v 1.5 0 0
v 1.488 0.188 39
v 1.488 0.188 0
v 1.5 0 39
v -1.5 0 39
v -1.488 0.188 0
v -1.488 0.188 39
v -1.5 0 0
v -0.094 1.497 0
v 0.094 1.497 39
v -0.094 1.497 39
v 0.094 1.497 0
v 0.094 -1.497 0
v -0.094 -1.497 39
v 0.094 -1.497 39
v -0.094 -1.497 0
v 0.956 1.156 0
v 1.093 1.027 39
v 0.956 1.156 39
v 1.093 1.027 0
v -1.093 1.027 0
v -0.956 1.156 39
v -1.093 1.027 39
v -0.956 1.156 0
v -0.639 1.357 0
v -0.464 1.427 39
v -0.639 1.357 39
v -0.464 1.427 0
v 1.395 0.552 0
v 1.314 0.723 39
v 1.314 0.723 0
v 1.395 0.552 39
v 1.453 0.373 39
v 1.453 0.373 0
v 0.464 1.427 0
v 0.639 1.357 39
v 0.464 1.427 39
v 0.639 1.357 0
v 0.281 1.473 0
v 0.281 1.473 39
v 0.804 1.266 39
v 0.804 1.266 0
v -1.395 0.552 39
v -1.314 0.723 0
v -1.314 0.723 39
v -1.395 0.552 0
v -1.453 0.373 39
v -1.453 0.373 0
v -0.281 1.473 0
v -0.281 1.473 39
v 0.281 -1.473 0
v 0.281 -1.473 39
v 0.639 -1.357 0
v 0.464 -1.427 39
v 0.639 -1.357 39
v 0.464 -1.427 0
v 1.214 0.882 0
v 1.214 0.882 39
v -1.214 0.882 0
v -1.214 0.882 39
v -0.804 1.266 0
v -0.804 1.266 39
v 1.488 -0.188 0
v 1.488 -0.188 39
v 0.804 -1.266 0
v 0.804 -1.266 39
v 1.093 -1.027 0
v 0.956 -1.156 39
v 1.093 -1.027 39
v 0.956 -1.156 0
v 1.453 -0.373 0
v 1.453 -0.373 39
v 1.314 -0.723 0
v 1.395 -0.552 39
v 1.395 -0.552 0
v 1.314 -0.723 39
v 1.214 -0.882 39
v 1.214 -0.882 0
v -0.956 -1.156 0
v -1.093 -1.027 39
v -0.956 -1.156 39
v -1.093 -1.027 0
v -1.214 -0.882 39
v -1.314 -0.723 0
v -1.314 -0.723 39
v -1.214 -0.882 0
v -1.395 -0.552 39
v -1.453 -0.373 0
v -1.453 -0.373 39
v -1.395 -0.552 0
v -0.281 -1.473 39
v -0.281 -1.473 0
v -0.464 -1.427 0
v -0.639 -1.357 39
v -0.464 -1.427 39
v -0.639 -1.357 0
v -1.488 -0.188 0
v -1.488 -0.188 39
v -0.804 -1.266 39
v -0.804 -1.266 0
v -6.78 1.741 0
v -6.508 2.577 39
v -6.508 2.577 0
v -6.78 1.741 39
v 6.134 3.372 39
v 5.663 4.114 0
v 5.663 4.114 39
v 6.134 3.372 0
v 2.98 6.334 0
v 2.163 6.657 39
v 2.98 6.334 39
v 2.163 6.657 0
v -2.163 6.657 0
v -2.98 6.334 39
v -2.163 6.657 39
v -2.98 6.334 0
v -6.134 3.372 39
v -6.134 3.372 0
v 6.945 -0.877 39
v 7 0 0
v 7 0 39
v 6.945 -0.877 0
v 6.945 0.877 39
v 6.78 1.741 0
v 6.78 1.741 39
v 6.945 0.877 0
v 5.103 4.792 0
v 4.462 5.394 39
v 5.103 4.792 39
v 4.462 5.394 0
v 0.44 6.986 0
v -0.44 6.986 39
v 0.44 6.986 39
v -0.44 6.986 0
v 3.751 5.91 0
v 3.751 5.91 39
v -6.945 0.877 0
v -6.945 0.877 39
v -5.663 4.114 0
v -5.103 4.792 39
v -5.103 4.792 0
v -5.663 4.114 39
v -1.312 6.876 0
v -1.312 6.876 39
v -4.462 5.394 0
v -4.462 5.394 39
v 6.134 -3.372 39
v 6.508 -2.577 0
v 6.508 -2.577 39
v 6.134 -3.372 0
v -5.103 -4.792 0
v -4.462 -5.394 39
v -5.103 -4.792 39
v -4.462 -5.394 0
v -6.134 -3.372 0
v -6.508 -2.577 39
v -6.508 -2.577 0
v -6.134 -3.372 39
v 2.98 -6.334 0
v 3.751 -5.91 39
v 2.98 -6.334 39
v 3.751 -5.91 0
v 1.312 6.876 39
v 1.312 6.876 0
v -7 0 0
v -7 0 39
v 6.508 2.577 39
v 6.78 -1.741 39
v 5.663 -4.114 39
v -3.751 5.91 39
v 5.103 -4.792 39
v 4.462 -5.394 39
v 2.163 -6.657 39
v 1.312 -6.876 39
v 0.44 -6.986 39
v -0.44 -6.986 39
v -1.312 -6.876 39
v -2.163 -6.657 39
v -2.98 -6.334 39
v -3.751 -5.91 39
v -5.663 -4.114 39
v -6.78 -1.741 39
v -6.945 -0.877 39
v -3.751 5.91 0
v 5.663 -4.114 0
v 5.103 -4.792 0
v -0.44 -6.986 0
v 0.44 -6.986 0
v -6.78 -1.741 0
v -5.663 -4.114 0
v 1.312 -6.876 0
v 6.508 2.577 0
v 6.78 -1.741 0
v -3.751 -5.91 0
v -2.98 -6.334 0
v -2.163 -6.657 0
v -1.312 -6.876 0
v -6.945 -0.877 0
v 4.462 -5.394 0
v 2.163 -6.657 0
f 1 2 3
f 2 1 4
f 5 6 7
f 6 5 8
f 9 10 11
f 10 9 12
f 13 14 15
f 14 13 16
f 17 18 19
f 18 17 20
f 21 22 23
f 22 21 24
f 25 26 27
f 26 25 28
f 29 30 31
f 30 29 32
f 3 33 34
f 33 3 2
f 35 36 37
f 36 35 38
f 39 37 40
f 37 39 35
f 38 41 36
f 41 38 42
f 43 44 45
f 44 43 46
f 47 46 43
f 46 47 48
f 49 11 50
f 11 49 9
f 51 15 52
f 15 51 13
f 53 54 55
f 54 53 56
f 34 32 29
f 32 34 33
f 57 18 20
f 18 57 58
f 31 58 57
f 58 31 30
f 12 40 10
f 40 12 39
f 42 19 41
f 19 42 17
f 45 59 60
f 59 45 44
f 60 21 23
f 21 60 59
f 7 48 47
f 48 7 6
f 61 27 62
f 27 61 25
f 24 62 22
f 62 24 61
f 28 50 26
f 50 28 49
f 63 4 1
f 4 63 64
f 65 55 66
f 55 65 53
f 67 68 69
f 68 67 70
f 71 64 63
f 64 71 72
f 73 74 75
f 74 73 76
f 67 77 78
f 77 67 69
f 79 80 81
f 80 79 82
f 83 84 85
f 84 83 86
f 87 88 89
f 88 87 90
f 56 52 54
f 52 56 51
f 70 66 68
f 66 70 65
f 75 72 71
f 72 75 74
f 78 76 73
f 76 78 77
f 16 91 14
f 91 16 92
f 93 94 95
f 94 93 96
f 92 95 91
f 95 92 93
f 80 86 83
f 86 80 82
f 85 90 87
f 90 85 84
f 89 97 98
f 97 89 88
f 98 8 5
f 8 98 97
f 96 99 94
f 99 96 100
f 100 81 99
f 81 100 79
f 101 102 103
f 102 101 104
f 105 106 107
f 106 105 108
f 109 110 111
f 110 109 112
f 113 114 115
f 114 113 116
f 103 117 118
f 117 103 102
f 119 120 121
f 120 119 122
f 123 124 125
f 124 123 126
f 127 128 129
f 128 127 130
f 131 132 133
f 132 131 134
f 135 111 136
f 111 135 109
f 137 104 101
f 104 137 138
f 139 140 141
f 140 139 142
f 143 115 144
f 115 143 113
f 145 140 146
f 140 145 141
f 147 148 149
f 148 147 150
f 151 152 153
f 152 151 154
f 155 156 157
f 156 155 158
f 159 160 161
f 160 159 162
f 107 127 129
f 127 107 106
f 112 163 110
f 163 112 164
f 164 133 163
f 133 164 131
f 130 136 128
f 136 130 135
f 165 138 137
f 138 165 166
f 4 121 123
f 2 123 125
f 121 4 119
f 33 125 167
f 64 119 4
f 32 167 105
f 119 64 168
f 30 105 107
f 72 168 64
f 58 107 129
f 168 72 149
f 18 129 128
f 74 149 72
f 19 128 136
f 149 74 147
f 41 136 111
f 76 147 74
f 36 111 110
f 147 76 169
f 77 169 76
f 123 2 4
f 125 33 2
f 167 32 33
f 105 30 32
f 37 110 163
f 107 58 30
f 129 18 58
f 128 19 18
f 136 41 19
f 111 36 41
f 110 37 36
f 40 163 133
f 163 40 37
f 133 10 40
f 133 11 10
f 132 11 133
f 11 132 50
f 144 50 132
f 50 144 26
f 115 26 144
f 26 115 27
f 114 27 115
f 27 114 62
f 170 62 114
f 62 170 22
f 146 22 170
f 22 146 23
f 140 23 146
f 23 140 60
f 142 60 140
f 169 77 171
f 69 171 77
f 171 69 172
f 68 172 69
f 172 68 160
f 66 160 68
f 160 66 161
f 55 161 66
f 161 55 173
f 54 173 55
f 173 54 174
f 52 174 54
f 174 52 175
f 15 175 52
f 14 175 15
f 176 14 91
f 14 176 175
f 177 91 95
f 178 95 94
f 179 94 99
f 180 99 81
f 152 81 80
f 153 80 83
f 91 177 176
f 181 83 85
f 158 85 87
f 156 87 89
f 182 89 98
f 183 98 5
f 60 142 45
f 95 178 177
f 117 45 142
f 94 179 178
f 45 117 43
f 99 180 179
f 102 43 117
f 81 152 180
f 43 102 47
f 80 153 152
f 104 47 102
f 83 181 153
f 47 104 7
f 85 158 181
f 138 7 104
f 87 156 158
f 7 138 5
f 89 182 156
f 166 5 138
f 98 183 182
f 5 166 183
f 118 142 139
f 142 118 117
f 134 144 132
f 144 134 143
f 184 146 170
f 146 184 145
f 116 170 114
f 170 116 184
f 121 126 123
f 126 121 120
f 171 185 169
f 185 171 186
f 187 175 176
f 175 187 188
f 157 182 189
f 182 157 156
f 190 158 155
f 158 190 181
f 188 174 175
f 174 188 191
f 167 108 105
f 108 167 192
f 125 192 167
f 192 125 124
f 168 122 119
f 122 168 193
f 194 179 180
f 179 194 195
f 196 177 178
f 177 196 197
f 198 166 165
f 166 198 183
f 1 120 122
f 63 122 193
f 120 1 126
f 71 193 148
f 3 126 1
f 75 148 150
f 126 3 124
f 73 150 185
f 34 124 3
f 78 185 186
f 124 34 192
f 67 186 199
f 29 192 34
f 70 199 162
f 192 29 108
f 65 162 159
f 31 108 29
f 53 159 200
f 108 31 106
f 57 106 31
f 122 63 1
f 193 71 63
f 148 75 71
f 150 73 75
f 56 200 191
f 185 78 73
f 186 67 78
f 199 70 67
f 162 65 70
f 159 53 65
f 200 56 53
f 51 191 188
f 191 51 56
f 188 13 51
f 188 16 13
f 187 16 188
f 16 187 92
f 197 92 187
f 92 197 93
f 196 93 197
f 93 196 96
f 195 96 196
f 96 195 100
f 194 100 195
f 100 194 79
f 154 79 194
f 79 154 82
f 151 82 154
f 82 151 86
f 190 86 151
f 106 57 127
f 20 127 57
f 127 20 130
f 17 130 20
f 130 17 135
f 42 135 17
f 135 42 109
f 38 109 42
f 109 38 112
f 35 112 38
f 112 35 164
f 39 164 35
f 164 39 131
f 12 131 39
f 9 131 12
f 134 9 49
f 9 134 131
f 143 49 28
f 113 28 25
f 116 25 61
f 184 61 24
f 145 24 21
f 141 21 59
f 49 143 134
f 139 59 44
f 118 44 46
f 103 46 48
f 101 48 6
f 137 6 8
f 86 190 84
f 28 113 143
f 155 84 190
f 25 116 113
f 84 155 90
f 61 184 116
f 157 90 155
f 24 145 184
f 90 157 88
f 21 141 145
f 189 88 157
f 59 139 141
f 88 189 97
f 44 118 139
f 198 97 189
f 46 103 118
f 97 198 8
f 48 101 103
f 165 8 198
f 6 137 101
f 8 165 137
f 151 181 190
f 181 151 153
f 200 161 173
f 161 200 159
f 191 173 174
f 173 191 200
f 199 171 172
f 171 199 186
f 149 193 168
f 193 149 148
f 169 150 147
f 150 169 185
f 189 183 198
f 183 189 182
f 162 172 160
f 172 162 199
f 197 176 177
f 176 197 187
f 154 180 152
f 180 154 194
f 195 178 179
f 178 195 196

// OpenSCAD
$fn = 50;


difference() {
	union() {
		cylinder(h = 39, r = 7.0000000000);
	}
	union() {
		translate(v = [0, 0, -100]) {
			cylinder(h = 200, r = 1.5000000000);
		}
		translate(v = [0, 0, -100]) {
			cylinder(h = 200, r = 1.5000000000);
		}
	}
}
